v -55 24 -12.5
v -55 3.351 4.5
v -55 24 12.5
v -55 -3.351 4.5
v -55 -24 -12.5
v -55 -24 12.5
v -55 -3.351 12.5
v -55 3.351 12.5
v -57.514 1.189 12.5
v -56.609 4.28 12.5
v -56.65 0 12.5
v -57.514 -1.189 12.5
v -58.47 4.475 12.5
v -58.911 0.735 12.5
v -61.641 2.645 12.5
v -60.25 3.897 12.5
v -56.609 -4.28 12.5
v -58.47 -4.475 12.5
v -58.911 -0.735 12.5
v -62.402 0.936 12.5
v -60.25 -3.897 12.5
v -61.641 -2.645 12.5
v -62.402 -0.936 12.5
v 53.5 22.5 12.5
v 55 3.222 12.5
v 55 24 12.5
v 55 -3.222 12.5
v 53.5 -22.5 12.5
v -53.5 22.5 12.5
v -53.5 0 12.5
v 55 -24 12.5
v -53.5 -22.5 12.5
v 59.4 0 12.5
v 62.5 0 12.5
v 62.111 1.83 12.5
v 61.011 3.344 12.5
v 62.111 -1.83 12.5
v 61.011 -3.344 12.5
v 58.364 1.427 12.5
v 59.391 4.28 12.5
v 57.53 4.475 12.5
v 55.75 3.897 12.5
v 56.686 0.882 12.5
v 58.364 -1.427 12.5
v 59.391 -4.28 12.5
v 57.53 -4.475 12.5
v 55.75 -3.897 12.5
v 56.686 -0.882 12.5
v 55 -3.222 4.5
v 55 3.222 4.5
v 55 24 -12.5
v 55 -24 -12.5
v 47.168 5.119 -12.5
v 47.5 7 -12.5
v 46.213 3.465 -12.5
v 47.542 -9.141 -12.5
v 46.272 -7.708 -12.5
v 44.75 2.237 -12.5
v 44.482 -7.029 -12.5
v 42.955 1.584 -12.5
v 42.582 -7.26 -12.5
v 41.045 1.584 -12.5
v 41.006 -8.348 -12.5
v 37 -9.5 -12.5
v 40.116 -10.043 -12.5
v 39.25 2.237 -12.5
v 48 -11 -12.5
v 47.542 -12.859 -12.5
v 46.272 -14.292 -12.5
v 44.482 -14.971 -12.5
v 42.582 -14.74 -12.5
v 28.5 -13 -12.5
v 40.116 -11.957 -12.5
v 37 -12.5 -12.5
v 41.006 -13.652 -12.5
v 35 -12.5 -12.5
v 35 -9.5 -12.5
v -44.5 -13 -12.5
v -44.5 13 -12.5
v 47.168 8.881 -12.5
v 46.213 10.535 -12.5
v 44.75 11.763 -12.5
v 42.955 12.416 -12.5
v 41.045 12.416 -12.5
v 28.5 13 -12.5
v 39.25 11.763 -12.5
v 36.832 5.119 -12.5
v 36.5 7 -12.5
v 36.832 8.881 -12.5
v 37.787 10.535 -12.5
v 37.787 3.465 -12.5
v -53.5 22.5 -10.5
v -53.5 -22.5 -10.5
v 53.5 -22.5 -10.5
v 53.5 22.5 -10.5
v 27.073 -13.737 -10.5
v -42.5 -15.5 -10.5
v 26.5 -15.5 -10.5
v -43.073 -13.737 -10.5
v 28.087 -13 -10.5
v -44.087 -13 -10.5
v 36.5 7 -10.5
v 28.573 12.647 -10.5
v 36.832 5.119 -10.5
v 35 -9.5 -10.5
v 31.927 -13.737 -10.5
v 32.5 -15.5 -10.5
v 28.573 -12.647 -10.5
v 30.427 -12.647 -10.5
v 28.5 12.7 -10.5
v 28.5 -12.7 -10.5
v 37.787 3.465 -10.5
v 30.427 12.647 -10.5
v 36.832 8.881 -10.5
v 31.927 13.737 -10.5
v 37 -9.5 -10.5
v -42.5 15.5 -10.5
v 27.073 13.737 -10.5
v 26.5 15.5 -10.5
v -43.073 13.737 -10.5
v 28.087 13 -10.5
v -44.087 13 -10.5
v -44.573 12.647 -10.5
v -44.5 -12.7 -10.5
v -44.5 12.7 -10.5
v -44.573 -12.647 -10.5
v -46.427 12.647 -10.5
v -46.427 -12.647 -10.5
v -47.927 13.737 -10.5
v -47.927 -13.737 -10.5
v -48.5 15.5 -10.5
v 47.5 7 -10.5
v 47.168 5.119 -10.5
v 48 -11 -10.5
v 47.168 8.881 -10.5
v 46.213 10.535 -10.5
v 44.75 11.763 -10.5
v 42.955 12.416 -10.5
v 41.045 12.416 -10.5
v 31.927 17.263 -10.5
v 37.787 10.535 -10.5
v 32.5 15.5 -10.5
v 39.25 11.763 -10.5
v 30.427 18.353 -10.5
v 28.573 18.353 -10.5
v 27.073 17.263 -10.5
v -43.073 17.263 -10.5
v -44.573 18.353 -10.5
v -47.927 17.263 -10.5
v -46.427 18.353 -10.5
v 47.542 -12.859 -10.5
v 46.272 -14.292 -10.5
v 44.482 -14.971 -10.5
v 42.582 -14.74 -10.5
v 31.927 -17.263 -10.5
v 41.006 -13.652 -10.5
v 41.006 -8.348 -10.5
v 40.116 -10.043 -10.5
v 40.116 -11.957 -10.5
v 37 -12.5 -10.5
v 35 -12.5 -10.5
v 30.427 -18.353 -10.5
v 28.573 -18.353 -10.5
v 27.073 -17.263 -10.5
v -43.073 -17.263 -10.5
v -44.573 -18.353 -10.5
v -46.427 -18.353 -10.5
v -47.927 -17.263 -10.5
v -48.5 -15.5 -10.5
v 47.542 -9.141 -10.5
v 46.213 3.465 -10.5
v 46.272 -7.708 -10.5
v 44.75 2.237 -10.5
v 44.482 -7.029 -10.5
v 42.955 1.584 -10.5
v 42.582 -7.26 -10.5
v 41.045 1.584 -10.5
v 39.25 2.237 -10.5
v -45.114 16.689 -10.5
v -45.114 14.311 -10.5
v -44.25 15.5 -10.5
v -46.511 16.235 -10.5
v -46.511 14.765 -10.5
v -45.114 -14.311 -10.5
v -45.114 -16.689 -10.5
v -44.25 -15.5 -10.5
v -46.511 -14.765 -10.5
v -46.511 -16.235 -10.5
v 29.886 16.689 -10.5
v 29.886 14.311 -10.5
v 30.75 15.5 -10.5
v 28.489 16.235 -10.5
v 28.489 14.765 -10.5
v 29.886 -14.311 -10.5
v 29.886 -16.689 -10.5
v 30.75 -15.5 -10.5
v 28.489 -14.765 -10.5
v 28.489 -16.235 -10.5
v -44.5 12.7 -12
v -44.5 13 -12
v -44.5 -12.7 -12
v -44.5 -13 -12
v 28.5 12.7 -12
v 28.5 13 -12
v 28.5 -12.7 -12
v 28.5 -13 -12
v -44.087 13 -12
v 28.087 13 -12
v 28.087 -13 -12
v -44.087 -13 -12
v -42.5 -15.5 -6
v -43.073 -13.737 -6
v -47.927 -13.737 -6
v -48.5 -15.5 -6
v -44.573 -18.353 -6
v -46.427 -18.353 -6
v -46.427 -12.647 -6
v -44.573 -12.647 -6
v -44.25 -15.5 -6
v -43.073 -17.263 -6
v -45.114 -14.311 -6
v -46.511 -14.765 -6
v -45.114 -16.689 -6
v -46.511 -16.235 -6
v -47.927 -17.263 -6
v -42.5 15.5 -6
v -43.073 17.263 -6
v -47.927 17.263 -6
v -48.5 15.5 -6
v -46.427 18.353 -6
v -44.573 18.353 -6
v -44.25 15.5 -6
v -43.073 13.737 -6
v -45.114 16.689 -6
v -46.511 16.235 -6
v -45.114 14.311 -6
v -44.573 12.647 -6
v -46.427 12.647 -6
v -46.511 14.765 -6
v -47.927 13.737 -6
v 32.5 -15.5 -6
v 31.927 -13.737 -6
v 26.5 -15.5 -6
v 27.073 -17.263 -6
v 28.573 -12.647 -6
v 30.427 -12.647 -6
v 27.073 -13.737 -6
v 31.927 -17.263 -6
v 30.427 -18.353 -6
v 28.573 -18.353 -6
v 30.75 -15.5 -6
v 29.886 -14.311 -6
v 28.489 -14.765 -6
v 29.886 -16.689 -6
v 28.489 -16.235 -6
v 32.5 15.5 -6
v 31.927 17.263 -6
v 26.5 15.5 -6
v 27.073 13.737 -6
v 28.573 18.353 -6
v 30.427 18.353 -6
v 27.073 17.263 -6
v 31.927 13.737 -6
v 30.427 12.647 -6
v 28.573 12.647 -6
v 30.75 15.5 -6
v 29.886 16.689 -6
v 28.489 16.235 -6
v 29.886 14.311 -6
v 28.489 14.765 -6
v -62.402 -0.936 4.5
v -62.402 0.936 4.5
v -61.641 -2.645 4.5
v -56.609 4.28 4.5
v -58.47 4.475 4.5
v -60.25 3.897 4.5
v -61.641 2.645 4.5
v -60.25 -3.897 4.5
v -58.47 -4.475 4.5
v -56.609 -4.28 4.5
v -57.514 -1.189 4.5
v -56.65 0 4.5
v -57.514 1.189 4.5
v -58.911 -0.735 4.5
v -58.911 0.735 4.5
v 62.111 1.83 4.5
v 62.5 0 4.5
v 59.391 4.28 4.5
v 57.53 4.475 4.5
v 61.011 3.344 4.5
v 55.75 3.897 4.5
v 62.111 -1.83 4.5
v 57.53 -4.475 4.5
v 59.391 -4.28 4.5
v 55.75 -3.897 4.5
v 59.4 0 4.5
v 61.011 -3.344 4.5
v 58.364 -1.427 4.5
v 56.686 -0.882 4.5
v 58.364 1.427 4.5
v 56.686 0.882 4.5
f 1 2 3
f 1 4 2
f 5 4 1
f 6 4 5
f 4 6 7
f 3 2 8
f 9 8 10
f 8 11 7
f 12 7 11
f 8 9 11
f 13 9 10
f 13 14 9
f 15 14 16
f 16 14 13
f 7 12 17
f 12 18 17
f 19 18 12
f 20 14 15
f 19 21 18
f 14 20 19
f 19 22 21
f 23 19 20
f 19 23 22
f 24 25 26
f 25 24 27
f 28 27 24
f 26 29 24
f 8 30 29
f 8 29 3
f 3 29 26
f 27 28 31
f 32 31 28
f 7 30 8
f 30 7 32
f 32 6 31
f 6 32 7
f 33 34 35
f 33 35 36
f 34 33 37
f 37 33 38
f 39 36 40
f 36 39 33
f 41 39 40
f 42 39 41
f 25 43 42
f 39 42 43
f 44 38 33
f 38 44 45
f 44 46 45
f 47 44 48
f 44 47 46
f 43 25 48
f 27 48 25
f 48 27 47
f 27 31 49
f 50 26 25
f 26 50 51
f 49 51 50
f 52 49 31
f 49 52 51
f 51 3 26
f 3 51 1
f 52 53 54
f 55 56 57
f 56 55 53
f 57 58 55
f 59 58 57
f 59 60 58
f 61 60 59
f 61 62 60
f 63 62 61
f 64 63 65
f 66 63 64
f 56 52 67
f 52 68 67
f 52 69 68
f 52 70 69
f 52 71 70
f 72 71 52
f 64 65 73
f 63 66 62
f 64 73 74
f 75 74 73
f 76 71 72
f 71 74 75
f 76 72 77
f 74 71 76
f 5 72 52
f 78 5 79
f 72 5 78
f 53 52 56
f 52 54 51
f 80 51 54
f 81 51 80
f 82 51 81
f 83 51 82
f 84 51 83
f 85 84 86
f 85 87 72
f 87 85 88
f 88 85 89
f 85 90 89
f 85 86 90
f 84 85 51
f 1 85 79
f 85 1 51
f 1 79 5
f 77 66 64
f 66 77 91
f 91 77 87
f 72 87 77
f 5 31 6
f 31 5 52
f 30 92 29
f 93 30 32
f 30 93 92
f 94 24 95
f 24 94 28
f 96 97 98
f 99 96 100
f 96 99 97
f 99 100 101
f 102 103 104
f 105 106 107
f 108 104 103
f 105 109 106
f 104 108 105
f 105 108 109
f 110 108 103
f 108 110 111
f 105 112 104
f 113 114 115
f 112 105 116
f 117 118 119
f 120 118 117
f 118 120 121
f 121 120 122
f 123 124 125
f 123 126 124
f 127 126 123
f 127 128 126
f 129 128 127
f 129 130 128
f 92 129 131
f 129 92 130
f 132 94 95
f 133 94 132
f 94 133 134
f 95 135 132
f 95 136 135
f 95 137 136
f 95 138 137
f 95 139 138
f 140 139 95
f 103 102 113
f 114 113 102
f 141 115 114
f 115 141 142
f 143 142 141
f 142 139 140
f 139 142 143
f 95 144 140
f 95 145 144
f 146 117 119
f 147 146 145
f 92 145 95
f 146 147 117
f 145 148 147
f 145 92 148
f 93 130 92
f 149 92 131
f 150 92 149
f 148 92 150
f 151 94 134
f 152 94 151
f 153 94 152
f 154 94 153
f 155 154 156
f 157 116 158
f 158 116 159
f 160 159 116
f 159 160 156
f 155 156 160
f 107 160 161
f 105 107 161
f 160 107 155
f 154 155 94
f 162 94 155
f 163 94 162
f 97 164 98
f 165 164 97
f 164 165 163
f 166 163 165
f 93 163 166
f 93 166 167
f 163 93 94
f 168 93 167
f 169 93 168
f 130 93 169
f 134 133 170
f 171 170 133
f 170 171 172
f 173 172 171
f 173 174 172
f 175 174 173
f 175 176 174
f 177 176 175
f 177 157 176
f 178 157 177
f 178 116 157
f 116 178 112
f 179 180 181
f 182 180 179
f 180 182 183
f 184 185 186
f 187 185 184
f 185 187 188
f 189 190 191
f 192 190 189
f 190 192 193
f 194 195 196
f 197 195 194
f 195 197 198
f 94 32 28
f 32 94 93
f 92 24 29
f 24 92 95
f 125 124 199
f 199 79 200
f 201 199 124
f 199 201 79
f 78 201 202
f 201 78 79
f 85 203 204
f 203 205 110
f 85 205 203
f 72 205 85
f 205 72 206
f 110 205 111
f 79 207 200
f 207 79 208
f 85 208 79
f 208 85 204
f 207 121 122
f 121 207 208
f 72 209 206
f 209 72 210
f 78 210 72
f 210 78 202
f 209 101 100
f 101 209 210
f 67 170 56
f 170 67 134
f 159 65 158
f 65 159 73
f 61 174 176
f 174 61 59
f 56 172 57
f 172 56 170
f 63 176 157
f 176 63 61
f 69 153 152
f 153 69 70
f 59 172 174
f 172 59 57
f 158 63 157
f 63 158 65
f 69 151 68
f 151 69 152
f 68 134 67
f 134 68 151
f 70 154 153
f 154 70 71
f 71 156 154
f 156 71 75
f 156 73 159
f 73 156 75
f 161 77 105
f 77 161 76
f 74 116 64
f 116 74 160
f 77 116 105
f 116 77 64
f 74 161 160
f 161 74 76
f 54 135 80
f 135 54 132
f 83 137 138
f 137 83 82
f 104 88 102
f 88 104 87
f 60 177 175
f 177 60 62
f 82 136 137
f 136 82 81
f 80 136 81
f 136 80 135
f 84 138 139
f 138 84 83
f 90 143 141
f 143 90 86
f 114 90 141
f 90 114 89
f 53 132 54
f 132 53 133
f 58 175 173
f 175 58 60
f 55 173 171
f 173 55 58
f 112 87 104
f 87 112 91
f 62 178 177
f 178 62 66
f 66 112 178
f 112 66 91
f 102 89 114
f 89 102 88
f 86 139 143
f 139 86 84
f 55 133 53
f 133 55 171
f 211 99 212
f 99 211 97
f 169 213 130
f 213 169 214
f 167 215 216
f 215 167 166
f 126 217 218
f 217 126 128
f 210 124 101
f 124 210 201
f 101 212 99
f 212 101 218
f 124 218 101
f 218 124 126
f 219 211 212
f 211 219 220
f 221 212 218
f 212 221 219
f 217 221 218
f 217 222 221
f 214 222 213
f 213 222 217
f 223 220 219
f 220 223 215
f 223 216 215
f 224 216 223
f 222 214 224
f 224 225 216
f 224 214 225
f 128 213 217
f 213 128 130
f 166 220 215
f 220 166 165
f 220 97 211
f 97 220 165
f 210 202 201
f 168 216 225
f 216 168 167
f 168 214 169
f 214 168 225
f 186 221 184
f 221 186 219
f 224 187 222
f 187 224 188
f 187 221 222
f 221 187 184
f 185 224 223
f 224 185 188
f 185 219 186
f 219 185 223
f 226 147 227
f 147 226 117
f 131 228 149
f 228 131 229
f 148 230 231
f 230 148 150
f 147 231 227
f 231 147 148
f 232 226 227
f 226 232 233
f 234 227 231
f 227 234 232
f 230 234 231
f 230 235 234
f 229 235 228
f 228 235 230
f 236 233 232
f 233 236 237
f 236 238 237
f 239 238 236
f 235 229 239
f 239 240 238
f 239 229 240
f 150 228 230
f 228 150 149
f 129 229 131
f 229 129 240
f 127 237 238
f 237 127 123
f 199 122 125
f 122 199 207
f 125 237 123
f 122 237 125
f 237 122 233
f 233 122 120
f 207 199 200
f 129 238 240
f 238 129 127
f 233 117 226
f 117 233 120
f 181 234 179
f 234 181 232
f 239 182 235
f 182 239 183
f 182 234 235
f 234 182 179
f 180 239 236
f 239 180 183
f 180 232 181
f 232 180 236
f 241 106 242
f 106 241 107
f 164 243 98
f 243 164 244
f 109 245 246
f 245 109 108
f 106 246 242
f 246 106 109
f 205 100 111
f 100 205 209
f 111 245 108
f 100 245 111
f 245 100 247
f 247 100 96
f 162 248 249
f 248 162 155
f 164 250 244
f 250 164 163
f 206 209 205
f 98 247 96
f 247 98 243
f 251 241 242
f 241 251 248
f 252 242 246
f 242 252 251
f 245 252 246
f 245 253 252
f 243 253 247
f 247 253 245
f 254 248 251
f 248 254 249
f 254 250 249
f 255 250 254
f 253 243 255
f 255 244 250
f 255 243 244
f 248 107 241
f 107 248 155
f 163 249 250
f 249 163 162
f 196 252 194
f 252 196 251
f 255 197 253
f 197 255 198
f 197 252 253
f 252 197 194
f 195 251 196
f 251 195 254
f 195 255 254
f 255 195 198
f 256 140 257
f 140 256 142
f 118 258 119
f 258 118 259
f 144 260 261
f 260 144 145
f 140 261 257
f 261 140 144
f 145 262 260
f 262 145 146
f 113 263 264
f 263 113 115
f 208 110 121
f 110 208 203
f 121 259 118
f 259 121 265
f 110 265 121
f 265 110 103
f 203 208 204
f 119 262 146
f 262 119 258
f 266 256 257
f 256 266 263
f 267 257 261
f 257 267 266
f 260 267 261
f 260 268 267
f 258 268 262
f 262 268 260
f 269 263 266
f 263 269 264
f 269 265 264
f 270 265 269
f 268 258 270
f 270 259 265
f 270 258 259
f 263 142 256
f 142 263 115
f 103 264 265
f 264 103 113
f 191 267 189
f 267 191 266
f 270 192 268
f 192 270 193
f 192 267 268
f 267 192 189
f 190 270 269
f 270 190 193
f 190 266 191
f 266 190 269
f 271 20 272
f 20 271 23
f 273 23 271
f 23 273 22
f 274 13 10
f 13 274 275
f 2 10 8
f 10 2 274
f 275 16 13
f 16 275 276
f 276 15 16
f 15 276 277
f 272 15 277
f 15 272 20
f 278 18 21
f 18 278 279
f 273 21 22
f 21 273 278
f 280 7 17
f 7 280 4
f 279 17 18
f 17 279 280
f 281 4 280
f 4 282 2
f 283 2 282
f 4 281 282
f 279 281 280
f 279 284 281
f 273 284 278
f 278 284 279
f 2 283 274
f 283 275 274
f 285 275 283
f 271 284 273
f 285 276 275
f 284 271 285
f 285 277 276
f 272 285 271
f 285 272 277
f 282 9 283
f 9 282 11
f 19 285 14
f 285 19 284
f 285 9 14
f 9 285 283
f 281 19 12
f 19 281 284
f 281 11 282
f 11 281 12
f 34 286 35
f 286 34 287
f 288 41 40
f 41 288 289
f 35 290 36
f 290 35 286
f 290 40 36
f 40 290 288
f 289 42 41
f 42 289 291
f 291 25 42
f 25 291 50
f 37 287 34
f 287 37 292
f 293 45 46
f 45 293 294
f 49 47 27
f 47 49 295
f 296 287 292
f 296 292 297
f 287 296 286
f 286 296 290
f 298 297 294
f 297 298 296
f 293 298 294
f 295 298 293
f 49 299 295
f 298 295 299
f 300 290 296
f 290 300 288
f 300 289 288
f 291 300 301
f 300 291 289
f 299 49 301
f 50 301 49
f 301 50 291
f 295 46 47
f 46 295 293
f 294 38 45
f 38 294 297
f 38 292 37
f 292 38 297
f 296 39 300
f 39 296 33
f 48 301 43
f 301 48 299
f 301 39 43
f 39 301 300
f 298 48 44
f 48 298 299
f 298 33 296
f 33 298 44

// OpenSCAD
fn=100;


module pot() {
  cylinder(d=18, h=8, $fs=0.01, center = true);
  translate([0,8,3.5]) 
      cube([15,7,1], center = true);
  lug([0,12,3.75]);
  lug([6,12,3.75]);
  lug([-6,12,3.75]);
  difference() {
    translate([0,0,4.5]) 
        cylinder(d=10, h=1, center = true, $fs=0.01);
    translate([0,6.25,4.701])
        cube([8,4,1.5], center = true);    
    translate([0,-6,4.701])
        cube([8,4,1.5], center = true); 
  }
  translate([0,0,8])
      cylinder(d=7, h=6, center = true, $fs=0.01);
  difference() {
    translate([0,0,14])
        cylinder(d=6.5, h=10, center = true, $fs=0.01);
    translate([0,0,14])
        cube([7,1,11], center = true);
  }
  translate([8.25,0,5])
    cube([1,2,2],center=true);

}

module lug(translate) {
  translate(translate) 
      cube([1.25,1,0.5], center = true);
  translate(translate) 
      translate([0,0.75,-0.25]) 
      rotate([90,0,0]) 
      cube([1.25,1,0.5], center = true);

  difference() {
    translate(translate) 
        translate([0,0.75,-2.75]) 
        rotate([90,0,0])
        cube([3,4,0.5], center = true);
    translate(translate) 
        translate([0,0.75,-2.75]) 
        rotate([90,0,0])
        cube([1,2,1], center = true);
  }
}


module Exemplo()
{
//shape = "flat"; 
shape = "angle";

// outer size
boxx = 86;
boxy = 41;   // internal size = 41-2*1.5 = 38.0
boxz = 21;

wall = 1.5;

// LCD pcb
//pcblcdx = 80;
//pcblcdy = 36;
//pcblcdz = 1.8;  //thichness off PCB

// distance between LCD PCB screws
lcdscrewx = 75; 
lcdscrewy = 31;

// window for LCD
lcdx    = 72;
lcdy    = 25;

// LCD mounting holes
standz  =   5;        // height of the standoff
standr  = 2.5;       // 5 mm diameter
screwz = standz;  // depth of srew hole
screwr = 1.5;       // 3 mm hole size

// 4 pole connector size
cony =   10 + 1;
conz =  2.5 + 1;

conlocz = 8.5+standz;  // 8.5 mm above pcb
conlocy = 2; // 2 mm from centre of hole

$fn=12;


// make the module
translate([-boxx/2,-boxy/2,0]) frontplate();

// view only
//translate([-boxx/2,-boxy/2,boxz+10])# bottom();

// print bottom
//if (shape == "flat")
//    	{rotate([0,180,0])  translate([-boxx/2,-boxy/2,-wall])  bottom();}
//	else
//	{translate([boxx/2,-boxy/2,wall])  rotate([20,180,0])  bottom();}



// make standoff for LCD pcb
// ------------------------------
module standoff()
	{difference()
		{translate([0,0,0]) cylinder(r=standr,h=standz+wall);
		  translate([0,0,wall+standz-screwz]) cylinder(r=screwr,h=screwz+0.1);
		}
	}




// LCD case
// --------------------------
module frontplate()
	{difference()
		{ if (shape=="flat") {cube([boxx,boxy,boxz]);}
                     else                 {cube([boxx,boxy,boxz+20]);}

		// empty the inside of the box
		  translate([wall,wall,wall]) cube([boxx-2*wall,boxy-2*wall,boxz+20]); 

		// make LCD window
	 	  translate([(boxx-lcdx)/2,(boxy-lcdy)/2,-wall]) cube([lcdx,lcdy,3*wall]);

		// make hole for connector
		  translate([-wall,conlocy+(boxy-lcdscrewy)/2,conlocz+wall]) cube([3*wall,cony,conz]);

		// make box with angle 20 degrees
		if (shape == "angle")                              // remove part of the top
			{translate([-5,-5,29]) rotate([-20,0,0]) cube([boxx+10,boxy+10,boxz+10]); }

		}


// standoffs for LCD PCB
	translate([                (boxx-lcdscrewx)/2,                (boxy-lcdscrewy)/2,0]) standoff(); 
	translate([                (boxx-lcdscrewx)/2,lcdscrewy+(boxy-lcdscrewy)/2,0]) standoff();
	translate([lcdscrewx+(boxx-lcdscrewx)/2,                (boxy-lcdscrewy)/2,0]) standoff();
	translate([lcdscrewx+(boxx-lcdscrewx)/2,lcdscrewy+(boxy-lcdscrewy)/2,0]) standoff();


	}


// LCD bottom
// ---------------------------
module bottom()
	{ if (shape=="flat")
		{difference()
			{union()
				{cube([boxx,boxy,wall]);
	   		 	translate([wall,wall,-2]) cube([boxx-2*wall,boxy-2*wall,2+wall]);
				}
			translate([2*wall,2*wall,-2.1]) cube([boxx-4*wall,boxy-4*wall,2.1]);

			// remove the corners
			translate([0,0,-2.1]) cube([25,15,2.1]);
			translate([boxx-25,0,-2.1]) cube([25,15,2.1]);	
			translate([0,boxy-15,-2.1]) cube([25,15,2.1]);	
			translate([boxx-25,boxy-15,-2.1]) cube([25,15,2.1]);	
			}
		}
	   else { rotate([-20,0,0]) cube([boxx,boxy+3,wall]); 
		     translate([boxx/2-15,wall,            -wall-1.5]) cube([30,2,3]);
		     translate([boxx/2-15,boxy-wall-2,-16])          cube([30,2,3]);

		     translate([wall,22,-10]) rotate([-20,0,0])  cube([2,15,3]);	// con side
		     translate([boxx-wall-2,10,-6]) rotate([-20,0,0])  cube([2,25,3]);	
		   } // end of else			
	}

}
module lcdEstufa()
{
    difference()
    {
        color("red")cube([110,48,25],center =true);
        translate([0,0,2])
        color("green")cube([107,45,25],center =true);
    
        //LCD
        translate([-8,0,0]) 
        cube([73,26,50],center =true);
        
        //Potenciometro
        translate([44,-11,0])
        cylinder (h = 50, r=(8/2), center = true);
        translate([36,-11,0])
        cube([2,3,50],center =true);
        //translate([50,-11,0])
        //cube([2,3,50],center =true);
        
        //Botão
        translate([42,7,0])
        cylinder (h = 50, r=(11/2), center = true);
    }
}


module fixador()
{
    difference()
    {
        translate([-45.5,-15.5,-9])
        cylinder (h = 6, r=(6/2), center = true,fn=100);
        translate([-45.5,-15.5,-9])
        cylinder (h = 8, r=(2.5/2), center = true,fn=100);
    } 
    
    difference()
    {
        translate([-45.5,15.5,-9])
        cylinder (h = 6, r=(6/2), center = true,fn=100);
        translate([-45.5,15.5,-9])
        cylinder (h = 8, r=(2.5/2), center = true,fn=100);
    }
    
    difference()
    {
        translate([29.5,-15.5,-9])
        cylinder (h = 6, r=(6/2), center = true,fn=100);
        translate([29.5,-15.5,-9])
        cylinder (h = 8, r=(2.5/2), center = true,fn=100);
    }
    
    difference()
    {
        translate([29.5,15.5,-9])
        cylinder (h = 6, r=(6/2), center = true,fn=100);
        translate([29.5,15.5,-9])
        cylinder (h = 8, r=(2.5/2), center = true,fn=100);
    }
}

module fixadorLataria()
{
    difference()
    {
        translate([-58,0,8.5])
        cylinder (h = 8, r=(9/2), center = true,fn=100);
        translate([-57.9,0,4.5])
        cylinder (h = 60, r=(2.5/2), center = true,fn=100);
    } 
    
    difference()
    {
        translate([58,0,8.5])
        cylinder (h = 8, r=(9/2), center = true,fn=100);
        translate([57.9,0,2.5])
        cylinder (h = 60, r=(3/2), center = true,fn=100);
    }
}
union()
{
    
    
    lcdEstufa();
    fixador();
    fixadorLataria();
    //translate([44,-11,-4])
    //rotate([0,180,0])
    //pot();
   
    
}

//translate([-8,0,-10])
//Exemplo();
